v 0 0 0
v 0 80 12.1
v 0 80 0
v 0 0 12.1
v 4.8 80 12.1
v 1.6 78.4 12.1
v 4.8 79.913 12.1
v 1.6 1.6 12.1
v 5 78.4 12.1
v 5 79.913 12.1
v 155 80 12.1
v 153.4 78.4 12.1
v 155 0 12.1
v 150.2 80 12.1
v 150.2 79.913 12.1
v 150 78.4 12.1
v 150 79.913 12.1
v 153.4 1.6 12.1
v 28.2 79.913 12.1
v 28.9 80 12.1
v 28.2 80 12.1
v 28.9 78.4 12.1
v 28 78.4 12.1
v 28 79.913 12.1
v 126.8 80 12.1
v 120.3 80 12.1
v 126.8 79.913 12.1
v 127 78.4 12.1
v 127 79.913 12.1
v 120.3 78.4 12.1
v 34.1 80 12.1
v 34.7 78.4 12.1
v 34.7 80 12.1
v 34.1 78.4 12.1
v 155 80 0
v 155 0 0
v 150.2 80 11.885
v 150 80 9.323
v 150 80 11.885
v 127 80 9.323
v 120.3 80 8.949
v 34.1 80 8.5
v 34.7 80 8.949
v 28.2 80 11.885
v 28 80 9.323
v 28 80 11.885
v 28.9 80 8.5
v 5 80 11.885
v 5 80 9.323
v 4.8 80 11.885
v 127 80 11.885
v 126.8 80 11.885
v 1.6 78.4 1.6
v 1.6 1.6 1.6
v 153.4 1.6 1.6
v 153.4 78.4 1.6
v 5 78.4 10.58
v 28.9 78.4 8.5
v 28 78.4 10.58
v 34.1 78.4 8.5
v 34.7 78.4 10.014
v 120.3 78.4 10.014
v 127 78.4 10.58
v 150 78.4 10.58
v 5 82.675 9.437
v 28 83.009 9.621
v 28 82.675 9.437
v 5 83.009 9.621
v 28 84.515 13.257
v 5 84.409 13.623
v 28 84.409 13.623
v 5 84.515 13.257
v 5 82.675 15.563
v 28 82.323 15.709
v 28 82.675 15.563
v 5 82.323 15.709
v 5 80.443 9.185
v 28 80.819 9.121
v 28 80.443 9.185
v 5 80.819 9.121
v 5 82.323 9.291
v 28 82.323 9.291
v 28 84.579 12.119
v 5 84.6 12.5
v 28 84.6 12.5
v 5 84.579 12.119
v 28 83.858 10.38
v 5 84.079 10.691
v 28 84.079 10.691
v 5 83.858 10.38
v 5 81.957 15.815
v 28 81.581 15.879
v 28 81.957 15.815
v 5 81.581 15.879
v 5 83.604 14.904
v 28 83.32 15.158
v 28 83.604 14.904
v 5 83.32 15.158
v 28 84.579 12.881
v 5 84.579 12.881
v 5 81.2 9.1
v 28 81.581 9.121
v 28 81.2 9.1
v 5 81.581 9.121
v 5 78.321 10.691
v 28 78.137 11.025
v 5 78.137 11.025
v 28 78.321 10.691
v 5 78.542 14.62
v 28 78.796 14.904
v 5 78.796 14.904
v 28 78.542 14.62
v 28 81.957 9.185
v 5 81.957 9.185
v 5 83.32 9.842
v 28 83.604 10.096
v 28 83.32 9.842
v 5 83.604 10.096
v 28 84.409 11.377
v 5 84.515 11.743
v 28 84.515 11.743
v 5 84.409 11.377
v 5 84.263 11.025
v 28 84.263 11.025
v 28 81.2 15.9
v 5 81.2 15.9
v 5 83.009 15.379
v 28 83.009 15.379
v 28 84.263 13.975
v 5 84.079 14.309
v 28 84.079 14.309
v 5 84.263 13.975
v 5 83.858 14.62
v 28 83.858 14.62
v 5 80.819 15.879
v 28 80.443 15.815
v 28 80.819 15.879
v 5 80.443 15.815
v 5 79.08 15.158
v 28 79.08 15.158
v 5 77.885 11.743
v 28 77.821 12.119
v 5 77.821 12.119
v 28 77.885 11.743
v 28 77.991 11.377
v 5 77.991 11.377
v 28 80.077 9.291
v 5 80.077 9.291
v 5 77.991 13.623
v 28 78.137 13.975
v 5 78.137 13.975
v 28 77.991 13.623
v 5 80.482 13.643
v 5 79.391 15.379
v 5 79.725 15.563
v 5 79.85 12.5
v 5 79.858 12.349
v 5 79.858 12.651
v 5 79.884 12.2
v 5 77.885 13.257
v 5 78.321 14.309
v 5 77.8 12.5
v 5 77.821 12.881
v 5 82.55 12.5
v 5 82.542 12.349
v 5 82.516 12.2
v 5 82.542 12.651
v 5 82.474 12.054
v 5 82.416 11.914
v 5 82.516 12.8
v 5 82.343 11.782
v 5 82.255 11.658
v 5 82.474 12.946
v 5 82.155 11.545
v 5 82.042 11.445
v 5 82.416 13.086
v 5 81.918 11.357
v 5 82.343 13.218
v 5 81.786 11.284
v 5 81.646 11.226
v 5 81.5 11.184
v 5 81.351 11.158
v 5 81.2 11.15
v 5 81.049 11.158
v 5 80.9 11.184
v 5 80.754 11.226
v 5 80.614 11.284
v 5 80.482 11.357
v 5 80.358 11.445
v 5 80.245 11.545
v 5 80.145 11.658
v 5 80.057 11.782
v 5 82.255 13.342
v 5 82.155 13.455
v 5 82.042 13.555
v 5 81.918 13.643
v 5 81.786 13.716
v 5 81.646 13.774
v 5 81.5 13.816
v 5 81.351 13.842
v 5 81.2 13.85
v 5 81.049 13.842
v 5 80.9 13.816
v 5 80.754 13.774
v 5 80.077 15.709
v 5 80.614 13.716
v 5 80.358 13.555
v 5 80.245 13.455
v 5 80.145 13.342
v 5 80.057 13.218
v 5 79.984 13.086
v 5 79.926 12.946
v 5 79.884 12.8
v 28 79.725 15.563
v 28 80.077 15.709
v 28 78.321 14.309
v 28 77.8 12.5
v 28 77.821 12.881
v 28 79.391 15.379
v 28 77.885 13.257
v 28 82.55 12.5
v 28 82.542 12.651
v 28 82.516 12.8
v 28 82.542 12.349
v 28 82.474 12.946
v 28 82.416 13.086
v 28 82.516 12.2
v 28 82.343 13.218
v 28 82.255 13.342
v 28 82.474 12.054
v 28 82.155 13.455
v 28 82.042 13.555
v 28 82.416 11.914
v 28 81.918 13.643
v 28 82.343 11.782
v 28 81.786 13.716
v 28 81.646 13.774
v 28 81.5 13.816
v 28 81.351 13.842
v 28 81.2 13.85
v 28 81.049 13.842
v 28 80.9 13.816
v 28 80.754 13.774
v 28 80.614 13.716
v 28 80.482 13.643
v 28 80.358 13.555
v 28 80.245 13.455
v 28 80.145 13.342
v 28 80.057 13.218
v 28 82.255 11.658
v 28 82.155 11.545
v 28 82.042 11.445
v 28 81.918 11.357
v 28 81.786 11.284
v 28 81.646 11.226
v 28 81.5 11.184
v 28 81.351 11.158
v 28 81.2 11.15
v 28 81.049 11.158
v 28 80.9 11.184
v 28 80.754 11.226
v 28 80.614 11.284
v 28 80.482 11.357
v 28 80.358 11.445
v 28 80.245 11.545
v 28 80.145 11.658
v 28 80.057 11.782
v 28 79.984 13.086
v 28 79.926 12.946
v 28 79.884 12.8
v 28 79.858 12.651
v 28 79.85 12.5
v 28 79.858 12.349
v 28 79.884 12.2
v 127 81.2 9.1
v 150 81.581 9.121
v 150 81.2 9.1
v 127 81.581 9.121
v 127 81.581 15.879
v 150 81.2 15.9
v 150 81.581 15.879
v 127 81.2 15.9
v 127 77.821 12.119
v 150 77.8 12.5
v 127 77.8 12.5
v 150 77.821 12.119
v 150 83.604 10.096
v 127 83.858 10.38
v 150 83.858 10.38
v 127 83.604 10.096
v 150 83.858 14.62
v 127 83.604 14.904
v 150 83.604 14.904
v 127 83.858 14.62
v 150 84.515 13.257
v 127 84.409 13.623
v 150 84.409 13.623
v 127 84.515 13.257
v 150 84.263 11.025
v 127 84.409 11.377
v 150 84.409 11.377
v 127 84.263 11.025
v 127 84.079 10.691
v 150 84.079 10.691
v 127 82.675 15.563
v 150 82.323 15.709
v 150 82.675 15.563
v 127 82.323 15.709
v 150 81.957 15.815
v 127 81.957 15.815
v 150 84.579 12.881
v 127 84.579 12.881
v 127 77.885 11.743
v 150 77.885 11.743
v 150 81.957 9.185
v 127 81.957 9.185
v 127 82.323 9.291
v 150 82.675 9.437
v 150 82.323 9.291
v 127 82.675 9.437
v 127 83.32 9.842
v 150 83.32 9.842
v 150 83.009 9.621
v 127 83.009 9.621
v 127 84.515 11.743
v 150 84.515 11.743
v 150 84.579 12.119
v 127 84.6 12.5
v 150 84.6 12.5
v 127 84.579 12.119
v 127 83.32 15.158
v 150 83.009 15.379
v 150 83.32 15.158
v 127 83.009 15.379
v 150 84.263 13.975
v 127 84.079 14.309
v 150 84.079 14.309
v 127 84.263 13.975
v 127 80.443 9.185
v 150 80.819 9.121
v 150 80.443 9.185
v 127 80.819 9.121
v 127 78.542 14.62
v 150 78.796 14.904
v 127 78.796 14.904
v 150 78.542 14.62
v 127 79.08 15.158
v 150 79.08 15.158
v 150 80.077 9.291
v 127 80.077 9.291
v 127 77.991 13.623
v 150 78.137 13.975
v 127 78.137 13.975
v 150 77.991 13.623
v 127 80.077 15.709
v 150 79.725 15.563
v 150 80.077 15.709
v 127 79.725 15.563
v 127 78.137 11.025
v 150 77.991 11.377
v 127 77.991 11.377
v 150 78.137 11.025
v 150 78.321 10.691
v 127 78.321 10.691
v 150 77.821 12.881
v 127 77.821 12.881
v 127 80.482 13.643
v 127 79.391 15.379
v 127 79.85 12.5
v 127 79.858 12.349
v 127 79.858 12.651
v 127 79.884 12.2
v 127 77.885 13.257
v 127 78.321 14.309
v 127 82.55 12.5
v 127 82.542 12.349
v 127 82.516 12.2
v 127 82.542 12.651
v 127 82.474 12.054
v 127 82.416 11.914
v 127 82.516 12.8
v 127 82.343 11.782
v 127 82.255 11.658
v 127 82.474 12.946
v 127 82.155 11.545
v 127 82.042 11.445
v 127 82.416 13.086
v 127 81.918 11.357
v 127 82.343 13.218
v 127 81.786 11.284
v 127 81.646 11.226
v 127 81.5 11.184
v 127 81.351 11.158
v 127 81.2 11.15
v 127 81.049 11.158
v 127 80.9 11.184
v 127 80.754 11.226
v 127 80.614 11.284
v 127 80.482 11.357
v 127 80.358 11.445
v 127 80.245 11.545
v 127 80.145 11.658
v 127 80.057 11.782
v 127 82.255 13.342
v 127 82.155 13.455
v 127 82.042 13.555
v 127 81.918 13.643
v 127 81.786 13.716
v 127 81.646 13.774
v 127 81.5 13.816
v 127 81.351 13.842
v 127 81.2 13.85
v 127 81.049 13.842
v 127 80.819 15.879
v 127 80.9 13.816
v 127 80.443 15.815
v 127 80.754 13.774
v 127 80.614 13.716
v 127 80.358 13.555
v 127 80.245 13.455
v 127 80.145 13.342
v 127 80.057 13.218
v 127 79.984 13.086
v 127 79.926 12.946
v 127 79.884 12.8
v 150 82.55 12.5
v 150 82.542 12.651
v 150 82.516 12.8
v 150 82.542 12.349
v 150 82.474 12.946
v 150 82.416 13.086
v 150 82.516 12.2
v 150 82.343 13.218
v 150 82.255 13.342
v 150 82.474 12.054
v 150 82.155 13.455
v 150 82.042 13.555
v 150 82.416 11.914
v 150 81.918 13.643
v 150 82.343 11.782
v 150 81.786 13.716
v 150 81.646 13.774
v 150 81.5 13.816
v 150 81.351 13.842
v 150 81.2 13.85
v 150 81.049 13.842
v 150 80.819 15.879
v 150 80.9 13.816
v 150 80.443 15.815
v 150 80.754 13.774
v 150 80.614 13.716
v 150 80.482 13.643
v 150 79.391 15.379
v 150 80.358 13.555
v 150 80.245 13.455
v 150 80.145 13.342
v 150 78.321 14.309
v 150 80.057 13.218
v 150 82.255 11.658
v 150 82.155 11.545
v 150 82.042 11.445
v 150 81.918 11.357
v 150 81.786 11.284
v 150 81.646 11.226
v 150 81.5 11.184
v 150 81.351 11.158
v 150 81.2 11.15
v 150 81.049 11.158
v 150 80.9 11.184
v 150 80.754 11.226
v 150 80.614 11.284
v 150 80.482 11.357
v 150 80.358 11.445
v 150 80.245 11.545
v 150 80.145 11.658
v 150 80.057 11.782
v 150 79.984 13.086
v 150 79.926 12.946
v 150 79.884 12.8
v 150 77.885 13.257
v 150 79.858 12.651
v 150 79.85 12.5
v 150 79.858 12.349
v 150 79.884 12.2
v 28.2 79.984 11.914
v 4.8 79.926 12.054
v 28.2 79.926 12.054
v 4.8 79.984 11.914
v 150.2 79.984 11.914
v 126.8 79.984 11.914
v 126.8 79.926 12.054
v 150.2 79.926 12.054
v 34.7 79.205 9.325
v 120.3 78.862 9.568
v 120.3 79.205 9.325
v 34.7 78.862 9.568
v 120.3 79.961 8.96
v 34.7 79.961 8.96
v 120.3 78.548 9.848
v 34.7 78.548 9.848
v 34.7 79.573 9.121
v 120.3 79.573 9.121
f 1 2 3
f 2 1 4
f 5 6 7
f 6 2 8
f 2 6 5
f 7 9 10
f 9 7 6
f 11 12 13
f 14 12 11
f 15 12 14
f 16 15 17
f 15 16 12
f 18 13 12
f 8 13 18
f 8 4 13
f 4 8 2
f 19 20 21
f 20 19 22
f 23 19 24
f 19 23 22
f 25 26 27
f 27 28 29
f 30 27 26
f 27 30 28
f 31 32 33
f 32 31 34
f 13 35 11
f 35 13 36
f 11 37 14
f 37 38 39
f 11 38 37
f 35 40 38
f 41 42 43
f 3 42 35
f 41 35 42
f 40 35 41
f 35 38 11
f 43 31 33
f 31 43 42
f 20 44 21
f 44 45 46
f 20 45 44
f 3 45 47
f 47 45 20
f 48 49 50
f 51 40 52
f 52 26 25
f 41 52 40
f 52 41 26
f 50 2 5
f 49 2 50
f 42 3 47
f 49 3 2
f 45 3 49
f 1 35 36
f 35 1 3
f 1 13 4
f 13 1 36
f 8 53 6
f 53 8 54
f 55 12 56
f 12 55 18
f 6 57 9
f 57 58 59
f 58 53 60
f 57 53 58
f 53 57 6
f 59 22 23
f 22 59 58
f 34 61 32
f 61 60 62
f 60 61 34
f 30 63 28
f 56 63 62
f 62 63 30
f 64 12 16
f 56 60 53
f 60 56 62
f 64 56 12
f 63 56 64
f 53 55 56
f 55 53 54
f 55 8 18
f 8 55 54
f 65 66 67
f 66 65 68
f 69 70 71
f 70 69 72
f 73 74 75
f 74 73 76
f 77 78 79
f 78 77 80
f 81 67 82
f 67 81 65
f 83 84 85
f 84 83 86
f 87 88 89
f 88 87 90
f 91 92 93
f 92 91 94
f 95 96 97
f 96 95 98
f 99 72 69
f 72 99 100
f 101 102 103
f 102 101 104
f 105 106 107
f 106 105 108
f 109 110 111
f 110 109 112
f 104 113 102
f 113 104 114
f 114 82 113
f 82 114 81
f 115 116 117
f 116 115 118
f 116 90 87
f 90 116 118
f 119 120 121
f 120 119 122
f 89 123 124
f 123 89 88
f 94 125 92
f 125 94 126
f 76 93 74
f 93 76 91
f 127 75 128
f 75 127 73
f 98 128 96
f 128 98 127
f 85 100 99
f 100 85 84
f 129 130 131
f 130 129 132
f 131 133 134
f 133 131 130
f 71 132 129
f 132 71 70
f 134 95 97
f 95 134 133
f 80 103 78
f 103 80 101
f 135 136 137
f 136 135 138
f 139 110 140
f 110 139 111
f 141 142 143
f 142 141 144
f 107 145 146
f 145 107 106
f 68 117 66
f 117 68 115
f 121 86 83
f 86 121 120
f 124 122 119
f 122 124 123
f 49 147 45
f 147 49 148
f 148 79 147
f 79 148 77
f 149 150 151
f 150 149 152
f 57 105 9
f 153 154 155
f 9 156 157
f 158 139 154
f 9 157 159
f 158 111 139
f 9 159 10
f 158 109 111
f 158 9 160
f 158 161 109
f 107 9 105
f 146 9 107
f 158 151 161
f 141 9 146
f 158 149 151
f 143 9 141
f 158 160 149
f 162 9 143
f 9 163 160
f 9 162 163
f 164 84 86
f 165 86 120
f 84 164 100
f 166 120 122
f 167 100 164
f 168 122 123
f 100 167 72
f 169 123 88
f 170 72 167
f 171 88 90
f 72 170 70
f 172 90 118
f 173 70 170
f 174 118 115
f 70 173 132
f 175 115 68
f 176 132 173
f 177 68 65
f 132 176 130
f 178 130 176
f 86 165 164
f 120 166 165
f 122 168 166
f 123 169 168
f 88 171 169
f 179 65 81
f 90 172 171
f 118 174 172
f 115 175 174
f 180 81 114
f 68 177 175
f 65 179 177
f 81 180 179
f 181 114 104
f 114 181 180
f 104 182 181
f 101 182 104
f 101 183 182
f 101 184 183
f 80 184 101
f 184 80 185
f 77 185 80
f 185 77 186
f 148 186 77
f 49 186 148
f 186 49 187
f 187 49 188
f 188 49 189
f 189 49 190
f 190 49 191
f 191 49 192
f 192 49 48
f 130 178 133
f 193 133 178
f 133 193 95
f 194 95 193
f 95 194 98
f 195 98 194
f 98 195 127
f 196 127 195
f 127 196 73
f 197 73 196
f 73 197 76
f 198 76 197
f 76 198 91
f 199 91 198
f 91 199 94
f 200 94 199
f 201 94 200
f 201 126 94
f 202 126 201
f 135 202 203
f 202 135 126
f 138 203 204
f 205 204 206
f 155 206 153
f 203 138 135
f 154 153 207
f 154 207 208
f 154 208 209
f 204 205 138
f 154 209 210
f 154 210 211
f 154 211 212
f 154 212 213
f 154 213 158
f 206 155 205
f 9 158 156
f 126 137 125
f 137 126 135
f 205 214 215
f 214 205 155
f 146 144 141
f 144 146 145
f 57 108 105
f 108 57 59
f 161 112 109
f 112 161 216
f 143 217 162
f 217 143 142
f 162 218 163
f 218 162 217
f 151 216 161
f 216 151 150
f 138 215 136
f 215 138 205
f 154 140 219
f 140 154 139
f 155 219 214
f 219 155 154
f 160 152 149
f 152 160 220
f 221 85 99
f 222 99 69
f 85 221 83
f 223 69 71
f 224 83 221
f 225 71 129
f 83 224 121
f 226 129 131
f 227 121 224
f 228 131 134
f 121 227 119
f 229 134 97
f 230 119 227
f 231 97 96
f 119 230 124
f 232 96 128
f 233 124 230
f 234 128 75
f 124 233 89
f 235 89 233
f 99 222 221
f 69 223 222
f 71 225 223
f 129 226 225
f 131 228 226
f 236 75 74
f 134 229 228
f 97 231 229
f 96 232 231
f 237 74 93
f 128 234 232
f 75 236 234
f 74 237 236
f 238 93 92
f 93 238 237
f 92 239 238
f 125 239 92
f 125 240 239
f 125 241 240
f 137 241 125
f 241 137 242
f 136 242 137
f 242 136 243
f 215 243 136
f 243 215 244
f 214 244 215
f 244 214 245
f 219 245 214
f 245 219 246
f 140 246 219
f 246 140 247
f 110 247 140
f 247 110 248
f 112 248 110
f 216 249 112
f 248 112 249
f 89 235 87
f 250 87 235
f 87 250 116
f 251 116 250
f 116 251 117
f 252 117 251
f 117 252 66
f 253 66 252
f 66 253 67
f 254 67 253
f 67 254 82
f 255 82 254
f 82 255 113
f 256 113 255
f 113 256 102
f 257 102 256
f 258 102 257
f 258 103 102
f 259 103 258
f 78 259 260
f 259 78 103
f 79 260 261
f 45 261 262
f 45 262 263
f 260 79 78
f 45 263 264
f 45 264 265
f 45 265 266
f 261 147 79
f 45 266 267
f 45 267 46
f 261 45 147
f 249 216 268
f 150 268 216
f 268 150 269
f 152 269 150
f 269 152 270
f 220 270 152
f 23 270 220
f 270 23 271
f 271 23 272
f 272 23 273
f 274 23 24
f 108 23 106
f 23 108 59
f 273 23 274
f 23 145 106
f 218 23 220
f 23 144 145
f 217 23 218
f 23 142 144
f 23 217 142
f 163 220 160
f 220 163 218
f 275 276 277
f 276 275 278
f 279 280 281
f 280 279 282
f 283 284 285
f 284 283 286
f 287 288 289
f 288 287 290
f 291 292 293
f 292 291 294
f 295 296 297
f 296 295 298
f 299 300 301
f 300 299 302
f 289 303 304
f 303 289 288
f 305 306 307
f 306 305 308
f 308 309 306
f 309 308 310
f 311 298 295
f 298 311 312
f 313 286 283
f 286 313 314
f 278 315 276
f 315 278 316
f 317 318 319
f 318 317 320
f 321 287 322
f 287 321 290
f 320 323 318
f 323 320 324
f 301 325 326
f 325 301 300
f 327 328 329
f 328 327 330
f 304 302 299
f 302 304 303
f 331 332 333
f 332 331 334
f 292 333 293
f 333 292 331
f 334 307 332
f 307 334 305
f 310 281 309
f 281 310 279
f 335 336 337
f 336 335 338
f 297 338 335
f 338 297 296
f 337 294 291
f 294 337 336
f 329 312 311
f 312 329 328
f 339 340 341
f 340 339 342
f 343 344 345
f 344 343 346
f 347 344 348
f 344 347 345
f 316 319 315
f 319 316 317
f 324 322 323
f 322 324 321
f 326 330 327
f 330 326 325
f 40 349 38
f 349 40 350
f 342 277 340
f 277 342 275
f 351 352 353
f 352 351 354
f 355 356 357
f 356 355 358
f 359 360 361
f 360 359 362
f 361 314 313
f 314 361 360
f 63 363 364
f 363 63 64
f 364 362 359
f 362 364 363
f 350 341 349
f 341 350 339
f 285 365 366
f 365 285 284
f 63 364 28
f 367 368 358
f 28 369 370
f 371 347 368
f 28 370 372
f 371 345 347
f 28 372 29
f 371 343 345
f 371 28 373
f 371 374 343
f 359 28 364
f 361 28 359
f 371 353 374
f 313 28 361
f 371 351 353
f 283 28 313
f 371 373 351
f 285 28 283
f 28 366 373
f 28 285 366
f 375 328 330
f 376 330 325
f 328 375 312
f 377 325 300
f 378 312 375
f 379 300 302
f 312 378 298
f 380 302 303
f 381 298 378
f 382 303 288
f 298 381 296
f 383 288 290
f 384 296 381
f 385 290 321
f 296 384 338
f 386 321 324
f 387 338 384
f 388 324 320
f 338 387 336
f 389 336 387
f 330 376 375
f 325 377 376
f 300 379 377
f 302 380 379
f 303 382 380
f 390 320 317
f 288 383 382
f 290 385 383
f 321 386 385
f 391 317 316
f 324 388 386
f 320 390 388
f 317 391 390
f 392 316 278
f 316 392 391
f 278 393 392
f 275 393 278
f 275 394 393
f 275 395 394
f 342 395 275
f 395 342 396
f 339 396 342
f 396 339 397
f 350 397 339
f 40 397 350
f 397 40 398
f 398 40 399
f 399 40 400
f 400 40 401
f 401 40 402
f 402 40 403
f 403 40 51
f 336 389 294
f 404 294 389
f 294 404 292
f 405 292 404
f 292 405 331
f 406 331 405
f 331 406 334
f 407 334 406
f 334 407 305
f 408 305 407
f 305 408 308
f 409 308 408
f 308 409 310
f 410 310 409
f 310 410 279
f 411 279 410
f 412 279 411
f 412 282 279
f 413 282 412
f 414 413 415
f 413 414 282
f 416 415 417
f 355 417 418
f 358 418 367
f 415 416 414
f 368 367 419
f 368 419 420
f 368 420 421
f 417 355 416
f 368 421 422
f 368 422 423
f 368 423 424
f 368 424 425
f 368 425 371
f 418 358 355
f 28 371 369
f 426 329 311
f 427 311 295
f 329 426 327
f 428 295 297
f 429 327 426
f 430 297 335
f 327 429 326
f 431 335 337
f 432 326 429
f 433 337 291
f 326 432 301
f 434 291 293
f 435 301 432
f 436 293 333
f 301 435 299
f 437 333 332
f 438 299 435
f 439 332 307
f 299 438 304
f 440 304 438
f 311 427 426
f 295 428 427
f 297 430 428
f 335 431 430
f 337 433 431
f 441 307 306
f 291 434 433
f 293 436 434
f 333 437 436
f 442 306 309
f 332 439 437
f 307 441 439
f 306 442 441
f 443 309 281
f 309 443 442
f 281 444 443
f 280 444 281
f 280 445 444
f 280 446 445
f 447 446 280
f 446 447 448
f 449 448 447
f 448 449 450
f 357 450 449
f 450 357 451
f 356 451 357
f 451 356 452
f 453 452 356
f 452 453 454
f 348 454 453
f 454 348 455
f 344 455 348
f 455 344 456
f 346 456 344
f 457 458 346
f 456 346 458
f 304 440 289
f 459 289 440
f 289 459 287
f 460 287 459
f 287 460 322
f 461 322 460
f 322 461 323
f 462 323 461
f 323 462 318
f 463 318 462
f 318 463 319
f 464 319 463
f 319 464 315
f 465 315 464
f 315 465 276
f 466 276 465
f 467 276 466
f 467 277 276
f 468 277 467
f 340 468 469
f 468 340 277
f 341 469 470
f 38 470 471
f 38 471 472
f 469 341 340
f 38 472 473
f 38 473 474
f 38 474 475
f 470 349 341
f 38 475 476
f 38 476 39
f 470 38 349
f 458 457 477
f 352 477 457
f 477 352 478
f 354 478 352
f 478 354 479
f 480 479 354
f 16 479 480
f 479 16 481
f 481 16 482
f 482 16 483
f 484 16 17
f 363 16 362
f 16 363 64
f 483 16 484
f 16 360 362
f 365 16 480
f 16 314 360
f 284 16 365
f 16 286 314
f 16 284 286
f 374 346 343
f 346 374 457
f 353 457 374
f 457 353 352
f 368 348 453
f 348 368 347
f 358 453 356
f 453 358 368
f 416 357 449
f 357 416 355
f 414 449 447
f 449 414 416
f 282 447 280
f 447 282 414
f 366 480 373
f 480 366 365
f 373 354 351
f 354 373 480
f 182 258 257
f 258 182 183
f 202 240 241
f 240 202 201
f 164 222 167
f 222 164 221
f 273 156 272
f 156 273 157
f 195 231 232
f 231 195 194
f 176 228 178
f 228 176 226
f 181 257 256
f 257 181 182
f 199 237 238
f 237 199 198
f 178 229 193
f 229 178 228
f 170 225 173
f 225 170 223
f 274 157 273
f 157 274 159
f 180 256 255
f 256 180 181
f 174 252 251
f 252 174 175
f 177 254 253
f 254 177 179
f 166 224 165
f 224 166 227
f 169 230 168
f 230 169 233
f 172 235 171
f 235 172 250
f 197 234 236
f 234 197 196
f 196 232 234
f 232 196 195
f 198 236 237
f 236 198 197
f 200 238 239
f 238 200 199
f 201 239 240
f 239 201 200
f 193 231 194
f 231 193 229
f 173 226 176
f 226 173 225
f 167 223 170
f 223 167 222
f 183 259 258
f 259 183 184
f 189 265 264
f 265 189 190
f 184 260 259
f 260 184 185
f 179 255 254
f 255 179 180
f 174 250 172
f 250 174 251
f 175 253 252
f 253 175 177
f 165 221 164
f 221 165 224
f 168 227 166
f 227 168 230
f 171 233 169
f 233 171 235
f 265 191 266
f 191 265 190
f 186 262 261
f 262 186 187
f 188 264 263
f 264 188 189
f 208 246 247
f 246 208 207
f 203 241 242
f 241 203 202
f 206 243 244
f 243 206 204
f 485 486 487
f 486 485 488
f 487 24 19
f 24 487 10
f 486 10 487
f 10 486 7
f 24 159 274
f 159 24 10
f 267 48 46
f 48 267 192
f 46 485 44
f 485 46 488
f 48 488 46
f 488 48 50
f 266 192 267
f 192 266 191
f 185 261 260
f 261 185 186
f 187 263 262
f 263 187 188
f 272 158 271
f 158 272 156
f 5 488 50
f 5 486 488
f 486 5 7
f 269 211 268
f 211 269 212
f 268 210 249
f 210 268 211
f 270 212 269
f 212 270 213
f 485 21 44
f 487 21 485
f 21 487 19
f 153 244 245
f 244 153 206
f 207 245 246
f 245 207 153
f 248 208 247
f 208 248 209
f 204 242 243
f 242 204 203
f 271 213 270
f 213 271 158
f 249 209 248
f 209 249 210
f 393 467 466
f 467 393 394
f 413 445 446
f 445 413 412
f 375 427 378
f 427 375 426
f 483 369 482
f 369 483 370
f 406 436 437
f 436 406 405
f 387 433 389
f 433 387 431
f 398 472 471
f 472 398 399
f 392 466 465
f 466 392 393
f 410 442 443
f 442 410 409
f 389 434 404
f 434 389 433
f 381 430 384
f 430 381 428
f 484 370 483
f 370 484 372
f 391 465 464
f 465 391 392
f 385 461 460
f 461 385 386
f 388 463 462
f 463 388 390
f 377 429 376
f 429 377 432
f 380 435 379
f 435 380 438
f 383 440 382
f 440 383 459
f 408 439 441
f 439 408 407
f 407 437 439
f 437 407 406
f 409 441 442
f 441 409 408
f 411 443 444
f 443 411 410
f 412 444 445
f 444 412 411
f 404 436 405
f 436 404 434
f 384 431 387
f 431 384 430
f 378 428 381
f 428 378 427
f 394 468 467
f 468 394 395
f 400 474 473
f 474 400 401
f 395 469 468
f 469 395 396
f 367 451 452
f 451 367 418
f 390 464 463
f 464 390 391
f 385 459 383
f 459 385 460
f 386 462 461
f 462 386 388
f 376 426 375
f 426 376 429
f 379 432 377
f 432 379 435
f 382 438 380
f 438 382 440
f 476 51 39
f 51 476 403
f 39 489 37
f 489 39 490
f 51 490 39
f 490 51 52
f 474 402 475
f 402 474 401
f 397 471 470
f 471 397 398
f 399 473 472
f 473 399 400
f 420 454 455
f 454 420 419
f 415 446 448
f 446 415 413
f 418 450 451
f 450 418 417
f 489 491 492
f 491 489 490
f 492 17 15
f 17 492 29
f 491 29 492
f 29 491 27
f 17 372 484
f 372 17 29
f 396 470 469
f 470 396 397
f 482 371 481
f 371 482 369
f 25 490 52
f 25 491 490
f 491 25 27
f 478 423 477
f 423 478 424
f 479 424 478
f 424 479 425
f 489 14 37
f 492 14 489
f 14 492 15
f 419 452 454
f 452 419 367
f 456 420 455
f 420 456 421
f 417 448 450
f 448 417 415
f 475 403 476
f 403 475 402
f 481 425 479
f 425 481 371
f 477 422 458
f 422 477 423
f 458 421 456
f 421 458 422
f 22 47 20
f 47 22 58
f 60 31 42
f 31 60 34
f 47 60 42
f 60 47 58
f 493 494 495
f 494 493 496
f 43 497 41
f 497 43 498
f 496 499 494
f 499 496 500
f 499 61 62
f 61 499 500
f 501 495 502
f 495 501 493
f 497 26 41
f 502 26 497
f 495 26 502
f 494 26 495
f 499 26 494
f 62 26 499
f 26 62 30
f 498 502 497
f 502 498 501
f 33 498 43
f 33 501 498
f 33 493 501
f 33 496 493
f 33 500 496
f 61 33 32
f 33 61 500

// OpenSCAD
// Generated by Mecha-Splicer: clamshell_terminal v1
// Dimension-based CAD ONLY: unknown PCB screw positions, USB access and real fit.
// base / keyboard tray, all dimensions in mm
$fn=56;
W=155.0; D=80.0; wall=1.6; floor=1.6;
HBASE=12.1; HLID=5.1; gap=0.8;
hy=81.2; hz=12.5;
kr=3.4; bore=2.7;

module base_shell() {
  difference() {
    union() {
      difference() {
        cube([W,D,HBASE]);
        translate([wall,wall,floor]) cube([W-2*wall,D-2*wall,HBASE+1]);
      }
      for (x=[5.0,127.0]) translate([x,hy,hz]) rotate([0,90,0]) cylinder(h=23.0,r=kr);
    }
    // Strain-relief entry only: actual cable bend life remains untested
    translate([28.9,78.30000000000001,8.5]) cube([5.2,1.8,3.7]);
    // Clearance pocket for opposite lid knuckle through base rear wall
    translate([34.7,hy,hz]) rotate([0,90,0]) cylinder(h=85.6,r=3.75);
    // Through-bore including relief outside the short segments
    for (x=[4.8,126.8]) translate([x,hy,hz]) rotate([0,90,0]) cylinder(h=23.4,d=bore);
  }
}
base_shell();
